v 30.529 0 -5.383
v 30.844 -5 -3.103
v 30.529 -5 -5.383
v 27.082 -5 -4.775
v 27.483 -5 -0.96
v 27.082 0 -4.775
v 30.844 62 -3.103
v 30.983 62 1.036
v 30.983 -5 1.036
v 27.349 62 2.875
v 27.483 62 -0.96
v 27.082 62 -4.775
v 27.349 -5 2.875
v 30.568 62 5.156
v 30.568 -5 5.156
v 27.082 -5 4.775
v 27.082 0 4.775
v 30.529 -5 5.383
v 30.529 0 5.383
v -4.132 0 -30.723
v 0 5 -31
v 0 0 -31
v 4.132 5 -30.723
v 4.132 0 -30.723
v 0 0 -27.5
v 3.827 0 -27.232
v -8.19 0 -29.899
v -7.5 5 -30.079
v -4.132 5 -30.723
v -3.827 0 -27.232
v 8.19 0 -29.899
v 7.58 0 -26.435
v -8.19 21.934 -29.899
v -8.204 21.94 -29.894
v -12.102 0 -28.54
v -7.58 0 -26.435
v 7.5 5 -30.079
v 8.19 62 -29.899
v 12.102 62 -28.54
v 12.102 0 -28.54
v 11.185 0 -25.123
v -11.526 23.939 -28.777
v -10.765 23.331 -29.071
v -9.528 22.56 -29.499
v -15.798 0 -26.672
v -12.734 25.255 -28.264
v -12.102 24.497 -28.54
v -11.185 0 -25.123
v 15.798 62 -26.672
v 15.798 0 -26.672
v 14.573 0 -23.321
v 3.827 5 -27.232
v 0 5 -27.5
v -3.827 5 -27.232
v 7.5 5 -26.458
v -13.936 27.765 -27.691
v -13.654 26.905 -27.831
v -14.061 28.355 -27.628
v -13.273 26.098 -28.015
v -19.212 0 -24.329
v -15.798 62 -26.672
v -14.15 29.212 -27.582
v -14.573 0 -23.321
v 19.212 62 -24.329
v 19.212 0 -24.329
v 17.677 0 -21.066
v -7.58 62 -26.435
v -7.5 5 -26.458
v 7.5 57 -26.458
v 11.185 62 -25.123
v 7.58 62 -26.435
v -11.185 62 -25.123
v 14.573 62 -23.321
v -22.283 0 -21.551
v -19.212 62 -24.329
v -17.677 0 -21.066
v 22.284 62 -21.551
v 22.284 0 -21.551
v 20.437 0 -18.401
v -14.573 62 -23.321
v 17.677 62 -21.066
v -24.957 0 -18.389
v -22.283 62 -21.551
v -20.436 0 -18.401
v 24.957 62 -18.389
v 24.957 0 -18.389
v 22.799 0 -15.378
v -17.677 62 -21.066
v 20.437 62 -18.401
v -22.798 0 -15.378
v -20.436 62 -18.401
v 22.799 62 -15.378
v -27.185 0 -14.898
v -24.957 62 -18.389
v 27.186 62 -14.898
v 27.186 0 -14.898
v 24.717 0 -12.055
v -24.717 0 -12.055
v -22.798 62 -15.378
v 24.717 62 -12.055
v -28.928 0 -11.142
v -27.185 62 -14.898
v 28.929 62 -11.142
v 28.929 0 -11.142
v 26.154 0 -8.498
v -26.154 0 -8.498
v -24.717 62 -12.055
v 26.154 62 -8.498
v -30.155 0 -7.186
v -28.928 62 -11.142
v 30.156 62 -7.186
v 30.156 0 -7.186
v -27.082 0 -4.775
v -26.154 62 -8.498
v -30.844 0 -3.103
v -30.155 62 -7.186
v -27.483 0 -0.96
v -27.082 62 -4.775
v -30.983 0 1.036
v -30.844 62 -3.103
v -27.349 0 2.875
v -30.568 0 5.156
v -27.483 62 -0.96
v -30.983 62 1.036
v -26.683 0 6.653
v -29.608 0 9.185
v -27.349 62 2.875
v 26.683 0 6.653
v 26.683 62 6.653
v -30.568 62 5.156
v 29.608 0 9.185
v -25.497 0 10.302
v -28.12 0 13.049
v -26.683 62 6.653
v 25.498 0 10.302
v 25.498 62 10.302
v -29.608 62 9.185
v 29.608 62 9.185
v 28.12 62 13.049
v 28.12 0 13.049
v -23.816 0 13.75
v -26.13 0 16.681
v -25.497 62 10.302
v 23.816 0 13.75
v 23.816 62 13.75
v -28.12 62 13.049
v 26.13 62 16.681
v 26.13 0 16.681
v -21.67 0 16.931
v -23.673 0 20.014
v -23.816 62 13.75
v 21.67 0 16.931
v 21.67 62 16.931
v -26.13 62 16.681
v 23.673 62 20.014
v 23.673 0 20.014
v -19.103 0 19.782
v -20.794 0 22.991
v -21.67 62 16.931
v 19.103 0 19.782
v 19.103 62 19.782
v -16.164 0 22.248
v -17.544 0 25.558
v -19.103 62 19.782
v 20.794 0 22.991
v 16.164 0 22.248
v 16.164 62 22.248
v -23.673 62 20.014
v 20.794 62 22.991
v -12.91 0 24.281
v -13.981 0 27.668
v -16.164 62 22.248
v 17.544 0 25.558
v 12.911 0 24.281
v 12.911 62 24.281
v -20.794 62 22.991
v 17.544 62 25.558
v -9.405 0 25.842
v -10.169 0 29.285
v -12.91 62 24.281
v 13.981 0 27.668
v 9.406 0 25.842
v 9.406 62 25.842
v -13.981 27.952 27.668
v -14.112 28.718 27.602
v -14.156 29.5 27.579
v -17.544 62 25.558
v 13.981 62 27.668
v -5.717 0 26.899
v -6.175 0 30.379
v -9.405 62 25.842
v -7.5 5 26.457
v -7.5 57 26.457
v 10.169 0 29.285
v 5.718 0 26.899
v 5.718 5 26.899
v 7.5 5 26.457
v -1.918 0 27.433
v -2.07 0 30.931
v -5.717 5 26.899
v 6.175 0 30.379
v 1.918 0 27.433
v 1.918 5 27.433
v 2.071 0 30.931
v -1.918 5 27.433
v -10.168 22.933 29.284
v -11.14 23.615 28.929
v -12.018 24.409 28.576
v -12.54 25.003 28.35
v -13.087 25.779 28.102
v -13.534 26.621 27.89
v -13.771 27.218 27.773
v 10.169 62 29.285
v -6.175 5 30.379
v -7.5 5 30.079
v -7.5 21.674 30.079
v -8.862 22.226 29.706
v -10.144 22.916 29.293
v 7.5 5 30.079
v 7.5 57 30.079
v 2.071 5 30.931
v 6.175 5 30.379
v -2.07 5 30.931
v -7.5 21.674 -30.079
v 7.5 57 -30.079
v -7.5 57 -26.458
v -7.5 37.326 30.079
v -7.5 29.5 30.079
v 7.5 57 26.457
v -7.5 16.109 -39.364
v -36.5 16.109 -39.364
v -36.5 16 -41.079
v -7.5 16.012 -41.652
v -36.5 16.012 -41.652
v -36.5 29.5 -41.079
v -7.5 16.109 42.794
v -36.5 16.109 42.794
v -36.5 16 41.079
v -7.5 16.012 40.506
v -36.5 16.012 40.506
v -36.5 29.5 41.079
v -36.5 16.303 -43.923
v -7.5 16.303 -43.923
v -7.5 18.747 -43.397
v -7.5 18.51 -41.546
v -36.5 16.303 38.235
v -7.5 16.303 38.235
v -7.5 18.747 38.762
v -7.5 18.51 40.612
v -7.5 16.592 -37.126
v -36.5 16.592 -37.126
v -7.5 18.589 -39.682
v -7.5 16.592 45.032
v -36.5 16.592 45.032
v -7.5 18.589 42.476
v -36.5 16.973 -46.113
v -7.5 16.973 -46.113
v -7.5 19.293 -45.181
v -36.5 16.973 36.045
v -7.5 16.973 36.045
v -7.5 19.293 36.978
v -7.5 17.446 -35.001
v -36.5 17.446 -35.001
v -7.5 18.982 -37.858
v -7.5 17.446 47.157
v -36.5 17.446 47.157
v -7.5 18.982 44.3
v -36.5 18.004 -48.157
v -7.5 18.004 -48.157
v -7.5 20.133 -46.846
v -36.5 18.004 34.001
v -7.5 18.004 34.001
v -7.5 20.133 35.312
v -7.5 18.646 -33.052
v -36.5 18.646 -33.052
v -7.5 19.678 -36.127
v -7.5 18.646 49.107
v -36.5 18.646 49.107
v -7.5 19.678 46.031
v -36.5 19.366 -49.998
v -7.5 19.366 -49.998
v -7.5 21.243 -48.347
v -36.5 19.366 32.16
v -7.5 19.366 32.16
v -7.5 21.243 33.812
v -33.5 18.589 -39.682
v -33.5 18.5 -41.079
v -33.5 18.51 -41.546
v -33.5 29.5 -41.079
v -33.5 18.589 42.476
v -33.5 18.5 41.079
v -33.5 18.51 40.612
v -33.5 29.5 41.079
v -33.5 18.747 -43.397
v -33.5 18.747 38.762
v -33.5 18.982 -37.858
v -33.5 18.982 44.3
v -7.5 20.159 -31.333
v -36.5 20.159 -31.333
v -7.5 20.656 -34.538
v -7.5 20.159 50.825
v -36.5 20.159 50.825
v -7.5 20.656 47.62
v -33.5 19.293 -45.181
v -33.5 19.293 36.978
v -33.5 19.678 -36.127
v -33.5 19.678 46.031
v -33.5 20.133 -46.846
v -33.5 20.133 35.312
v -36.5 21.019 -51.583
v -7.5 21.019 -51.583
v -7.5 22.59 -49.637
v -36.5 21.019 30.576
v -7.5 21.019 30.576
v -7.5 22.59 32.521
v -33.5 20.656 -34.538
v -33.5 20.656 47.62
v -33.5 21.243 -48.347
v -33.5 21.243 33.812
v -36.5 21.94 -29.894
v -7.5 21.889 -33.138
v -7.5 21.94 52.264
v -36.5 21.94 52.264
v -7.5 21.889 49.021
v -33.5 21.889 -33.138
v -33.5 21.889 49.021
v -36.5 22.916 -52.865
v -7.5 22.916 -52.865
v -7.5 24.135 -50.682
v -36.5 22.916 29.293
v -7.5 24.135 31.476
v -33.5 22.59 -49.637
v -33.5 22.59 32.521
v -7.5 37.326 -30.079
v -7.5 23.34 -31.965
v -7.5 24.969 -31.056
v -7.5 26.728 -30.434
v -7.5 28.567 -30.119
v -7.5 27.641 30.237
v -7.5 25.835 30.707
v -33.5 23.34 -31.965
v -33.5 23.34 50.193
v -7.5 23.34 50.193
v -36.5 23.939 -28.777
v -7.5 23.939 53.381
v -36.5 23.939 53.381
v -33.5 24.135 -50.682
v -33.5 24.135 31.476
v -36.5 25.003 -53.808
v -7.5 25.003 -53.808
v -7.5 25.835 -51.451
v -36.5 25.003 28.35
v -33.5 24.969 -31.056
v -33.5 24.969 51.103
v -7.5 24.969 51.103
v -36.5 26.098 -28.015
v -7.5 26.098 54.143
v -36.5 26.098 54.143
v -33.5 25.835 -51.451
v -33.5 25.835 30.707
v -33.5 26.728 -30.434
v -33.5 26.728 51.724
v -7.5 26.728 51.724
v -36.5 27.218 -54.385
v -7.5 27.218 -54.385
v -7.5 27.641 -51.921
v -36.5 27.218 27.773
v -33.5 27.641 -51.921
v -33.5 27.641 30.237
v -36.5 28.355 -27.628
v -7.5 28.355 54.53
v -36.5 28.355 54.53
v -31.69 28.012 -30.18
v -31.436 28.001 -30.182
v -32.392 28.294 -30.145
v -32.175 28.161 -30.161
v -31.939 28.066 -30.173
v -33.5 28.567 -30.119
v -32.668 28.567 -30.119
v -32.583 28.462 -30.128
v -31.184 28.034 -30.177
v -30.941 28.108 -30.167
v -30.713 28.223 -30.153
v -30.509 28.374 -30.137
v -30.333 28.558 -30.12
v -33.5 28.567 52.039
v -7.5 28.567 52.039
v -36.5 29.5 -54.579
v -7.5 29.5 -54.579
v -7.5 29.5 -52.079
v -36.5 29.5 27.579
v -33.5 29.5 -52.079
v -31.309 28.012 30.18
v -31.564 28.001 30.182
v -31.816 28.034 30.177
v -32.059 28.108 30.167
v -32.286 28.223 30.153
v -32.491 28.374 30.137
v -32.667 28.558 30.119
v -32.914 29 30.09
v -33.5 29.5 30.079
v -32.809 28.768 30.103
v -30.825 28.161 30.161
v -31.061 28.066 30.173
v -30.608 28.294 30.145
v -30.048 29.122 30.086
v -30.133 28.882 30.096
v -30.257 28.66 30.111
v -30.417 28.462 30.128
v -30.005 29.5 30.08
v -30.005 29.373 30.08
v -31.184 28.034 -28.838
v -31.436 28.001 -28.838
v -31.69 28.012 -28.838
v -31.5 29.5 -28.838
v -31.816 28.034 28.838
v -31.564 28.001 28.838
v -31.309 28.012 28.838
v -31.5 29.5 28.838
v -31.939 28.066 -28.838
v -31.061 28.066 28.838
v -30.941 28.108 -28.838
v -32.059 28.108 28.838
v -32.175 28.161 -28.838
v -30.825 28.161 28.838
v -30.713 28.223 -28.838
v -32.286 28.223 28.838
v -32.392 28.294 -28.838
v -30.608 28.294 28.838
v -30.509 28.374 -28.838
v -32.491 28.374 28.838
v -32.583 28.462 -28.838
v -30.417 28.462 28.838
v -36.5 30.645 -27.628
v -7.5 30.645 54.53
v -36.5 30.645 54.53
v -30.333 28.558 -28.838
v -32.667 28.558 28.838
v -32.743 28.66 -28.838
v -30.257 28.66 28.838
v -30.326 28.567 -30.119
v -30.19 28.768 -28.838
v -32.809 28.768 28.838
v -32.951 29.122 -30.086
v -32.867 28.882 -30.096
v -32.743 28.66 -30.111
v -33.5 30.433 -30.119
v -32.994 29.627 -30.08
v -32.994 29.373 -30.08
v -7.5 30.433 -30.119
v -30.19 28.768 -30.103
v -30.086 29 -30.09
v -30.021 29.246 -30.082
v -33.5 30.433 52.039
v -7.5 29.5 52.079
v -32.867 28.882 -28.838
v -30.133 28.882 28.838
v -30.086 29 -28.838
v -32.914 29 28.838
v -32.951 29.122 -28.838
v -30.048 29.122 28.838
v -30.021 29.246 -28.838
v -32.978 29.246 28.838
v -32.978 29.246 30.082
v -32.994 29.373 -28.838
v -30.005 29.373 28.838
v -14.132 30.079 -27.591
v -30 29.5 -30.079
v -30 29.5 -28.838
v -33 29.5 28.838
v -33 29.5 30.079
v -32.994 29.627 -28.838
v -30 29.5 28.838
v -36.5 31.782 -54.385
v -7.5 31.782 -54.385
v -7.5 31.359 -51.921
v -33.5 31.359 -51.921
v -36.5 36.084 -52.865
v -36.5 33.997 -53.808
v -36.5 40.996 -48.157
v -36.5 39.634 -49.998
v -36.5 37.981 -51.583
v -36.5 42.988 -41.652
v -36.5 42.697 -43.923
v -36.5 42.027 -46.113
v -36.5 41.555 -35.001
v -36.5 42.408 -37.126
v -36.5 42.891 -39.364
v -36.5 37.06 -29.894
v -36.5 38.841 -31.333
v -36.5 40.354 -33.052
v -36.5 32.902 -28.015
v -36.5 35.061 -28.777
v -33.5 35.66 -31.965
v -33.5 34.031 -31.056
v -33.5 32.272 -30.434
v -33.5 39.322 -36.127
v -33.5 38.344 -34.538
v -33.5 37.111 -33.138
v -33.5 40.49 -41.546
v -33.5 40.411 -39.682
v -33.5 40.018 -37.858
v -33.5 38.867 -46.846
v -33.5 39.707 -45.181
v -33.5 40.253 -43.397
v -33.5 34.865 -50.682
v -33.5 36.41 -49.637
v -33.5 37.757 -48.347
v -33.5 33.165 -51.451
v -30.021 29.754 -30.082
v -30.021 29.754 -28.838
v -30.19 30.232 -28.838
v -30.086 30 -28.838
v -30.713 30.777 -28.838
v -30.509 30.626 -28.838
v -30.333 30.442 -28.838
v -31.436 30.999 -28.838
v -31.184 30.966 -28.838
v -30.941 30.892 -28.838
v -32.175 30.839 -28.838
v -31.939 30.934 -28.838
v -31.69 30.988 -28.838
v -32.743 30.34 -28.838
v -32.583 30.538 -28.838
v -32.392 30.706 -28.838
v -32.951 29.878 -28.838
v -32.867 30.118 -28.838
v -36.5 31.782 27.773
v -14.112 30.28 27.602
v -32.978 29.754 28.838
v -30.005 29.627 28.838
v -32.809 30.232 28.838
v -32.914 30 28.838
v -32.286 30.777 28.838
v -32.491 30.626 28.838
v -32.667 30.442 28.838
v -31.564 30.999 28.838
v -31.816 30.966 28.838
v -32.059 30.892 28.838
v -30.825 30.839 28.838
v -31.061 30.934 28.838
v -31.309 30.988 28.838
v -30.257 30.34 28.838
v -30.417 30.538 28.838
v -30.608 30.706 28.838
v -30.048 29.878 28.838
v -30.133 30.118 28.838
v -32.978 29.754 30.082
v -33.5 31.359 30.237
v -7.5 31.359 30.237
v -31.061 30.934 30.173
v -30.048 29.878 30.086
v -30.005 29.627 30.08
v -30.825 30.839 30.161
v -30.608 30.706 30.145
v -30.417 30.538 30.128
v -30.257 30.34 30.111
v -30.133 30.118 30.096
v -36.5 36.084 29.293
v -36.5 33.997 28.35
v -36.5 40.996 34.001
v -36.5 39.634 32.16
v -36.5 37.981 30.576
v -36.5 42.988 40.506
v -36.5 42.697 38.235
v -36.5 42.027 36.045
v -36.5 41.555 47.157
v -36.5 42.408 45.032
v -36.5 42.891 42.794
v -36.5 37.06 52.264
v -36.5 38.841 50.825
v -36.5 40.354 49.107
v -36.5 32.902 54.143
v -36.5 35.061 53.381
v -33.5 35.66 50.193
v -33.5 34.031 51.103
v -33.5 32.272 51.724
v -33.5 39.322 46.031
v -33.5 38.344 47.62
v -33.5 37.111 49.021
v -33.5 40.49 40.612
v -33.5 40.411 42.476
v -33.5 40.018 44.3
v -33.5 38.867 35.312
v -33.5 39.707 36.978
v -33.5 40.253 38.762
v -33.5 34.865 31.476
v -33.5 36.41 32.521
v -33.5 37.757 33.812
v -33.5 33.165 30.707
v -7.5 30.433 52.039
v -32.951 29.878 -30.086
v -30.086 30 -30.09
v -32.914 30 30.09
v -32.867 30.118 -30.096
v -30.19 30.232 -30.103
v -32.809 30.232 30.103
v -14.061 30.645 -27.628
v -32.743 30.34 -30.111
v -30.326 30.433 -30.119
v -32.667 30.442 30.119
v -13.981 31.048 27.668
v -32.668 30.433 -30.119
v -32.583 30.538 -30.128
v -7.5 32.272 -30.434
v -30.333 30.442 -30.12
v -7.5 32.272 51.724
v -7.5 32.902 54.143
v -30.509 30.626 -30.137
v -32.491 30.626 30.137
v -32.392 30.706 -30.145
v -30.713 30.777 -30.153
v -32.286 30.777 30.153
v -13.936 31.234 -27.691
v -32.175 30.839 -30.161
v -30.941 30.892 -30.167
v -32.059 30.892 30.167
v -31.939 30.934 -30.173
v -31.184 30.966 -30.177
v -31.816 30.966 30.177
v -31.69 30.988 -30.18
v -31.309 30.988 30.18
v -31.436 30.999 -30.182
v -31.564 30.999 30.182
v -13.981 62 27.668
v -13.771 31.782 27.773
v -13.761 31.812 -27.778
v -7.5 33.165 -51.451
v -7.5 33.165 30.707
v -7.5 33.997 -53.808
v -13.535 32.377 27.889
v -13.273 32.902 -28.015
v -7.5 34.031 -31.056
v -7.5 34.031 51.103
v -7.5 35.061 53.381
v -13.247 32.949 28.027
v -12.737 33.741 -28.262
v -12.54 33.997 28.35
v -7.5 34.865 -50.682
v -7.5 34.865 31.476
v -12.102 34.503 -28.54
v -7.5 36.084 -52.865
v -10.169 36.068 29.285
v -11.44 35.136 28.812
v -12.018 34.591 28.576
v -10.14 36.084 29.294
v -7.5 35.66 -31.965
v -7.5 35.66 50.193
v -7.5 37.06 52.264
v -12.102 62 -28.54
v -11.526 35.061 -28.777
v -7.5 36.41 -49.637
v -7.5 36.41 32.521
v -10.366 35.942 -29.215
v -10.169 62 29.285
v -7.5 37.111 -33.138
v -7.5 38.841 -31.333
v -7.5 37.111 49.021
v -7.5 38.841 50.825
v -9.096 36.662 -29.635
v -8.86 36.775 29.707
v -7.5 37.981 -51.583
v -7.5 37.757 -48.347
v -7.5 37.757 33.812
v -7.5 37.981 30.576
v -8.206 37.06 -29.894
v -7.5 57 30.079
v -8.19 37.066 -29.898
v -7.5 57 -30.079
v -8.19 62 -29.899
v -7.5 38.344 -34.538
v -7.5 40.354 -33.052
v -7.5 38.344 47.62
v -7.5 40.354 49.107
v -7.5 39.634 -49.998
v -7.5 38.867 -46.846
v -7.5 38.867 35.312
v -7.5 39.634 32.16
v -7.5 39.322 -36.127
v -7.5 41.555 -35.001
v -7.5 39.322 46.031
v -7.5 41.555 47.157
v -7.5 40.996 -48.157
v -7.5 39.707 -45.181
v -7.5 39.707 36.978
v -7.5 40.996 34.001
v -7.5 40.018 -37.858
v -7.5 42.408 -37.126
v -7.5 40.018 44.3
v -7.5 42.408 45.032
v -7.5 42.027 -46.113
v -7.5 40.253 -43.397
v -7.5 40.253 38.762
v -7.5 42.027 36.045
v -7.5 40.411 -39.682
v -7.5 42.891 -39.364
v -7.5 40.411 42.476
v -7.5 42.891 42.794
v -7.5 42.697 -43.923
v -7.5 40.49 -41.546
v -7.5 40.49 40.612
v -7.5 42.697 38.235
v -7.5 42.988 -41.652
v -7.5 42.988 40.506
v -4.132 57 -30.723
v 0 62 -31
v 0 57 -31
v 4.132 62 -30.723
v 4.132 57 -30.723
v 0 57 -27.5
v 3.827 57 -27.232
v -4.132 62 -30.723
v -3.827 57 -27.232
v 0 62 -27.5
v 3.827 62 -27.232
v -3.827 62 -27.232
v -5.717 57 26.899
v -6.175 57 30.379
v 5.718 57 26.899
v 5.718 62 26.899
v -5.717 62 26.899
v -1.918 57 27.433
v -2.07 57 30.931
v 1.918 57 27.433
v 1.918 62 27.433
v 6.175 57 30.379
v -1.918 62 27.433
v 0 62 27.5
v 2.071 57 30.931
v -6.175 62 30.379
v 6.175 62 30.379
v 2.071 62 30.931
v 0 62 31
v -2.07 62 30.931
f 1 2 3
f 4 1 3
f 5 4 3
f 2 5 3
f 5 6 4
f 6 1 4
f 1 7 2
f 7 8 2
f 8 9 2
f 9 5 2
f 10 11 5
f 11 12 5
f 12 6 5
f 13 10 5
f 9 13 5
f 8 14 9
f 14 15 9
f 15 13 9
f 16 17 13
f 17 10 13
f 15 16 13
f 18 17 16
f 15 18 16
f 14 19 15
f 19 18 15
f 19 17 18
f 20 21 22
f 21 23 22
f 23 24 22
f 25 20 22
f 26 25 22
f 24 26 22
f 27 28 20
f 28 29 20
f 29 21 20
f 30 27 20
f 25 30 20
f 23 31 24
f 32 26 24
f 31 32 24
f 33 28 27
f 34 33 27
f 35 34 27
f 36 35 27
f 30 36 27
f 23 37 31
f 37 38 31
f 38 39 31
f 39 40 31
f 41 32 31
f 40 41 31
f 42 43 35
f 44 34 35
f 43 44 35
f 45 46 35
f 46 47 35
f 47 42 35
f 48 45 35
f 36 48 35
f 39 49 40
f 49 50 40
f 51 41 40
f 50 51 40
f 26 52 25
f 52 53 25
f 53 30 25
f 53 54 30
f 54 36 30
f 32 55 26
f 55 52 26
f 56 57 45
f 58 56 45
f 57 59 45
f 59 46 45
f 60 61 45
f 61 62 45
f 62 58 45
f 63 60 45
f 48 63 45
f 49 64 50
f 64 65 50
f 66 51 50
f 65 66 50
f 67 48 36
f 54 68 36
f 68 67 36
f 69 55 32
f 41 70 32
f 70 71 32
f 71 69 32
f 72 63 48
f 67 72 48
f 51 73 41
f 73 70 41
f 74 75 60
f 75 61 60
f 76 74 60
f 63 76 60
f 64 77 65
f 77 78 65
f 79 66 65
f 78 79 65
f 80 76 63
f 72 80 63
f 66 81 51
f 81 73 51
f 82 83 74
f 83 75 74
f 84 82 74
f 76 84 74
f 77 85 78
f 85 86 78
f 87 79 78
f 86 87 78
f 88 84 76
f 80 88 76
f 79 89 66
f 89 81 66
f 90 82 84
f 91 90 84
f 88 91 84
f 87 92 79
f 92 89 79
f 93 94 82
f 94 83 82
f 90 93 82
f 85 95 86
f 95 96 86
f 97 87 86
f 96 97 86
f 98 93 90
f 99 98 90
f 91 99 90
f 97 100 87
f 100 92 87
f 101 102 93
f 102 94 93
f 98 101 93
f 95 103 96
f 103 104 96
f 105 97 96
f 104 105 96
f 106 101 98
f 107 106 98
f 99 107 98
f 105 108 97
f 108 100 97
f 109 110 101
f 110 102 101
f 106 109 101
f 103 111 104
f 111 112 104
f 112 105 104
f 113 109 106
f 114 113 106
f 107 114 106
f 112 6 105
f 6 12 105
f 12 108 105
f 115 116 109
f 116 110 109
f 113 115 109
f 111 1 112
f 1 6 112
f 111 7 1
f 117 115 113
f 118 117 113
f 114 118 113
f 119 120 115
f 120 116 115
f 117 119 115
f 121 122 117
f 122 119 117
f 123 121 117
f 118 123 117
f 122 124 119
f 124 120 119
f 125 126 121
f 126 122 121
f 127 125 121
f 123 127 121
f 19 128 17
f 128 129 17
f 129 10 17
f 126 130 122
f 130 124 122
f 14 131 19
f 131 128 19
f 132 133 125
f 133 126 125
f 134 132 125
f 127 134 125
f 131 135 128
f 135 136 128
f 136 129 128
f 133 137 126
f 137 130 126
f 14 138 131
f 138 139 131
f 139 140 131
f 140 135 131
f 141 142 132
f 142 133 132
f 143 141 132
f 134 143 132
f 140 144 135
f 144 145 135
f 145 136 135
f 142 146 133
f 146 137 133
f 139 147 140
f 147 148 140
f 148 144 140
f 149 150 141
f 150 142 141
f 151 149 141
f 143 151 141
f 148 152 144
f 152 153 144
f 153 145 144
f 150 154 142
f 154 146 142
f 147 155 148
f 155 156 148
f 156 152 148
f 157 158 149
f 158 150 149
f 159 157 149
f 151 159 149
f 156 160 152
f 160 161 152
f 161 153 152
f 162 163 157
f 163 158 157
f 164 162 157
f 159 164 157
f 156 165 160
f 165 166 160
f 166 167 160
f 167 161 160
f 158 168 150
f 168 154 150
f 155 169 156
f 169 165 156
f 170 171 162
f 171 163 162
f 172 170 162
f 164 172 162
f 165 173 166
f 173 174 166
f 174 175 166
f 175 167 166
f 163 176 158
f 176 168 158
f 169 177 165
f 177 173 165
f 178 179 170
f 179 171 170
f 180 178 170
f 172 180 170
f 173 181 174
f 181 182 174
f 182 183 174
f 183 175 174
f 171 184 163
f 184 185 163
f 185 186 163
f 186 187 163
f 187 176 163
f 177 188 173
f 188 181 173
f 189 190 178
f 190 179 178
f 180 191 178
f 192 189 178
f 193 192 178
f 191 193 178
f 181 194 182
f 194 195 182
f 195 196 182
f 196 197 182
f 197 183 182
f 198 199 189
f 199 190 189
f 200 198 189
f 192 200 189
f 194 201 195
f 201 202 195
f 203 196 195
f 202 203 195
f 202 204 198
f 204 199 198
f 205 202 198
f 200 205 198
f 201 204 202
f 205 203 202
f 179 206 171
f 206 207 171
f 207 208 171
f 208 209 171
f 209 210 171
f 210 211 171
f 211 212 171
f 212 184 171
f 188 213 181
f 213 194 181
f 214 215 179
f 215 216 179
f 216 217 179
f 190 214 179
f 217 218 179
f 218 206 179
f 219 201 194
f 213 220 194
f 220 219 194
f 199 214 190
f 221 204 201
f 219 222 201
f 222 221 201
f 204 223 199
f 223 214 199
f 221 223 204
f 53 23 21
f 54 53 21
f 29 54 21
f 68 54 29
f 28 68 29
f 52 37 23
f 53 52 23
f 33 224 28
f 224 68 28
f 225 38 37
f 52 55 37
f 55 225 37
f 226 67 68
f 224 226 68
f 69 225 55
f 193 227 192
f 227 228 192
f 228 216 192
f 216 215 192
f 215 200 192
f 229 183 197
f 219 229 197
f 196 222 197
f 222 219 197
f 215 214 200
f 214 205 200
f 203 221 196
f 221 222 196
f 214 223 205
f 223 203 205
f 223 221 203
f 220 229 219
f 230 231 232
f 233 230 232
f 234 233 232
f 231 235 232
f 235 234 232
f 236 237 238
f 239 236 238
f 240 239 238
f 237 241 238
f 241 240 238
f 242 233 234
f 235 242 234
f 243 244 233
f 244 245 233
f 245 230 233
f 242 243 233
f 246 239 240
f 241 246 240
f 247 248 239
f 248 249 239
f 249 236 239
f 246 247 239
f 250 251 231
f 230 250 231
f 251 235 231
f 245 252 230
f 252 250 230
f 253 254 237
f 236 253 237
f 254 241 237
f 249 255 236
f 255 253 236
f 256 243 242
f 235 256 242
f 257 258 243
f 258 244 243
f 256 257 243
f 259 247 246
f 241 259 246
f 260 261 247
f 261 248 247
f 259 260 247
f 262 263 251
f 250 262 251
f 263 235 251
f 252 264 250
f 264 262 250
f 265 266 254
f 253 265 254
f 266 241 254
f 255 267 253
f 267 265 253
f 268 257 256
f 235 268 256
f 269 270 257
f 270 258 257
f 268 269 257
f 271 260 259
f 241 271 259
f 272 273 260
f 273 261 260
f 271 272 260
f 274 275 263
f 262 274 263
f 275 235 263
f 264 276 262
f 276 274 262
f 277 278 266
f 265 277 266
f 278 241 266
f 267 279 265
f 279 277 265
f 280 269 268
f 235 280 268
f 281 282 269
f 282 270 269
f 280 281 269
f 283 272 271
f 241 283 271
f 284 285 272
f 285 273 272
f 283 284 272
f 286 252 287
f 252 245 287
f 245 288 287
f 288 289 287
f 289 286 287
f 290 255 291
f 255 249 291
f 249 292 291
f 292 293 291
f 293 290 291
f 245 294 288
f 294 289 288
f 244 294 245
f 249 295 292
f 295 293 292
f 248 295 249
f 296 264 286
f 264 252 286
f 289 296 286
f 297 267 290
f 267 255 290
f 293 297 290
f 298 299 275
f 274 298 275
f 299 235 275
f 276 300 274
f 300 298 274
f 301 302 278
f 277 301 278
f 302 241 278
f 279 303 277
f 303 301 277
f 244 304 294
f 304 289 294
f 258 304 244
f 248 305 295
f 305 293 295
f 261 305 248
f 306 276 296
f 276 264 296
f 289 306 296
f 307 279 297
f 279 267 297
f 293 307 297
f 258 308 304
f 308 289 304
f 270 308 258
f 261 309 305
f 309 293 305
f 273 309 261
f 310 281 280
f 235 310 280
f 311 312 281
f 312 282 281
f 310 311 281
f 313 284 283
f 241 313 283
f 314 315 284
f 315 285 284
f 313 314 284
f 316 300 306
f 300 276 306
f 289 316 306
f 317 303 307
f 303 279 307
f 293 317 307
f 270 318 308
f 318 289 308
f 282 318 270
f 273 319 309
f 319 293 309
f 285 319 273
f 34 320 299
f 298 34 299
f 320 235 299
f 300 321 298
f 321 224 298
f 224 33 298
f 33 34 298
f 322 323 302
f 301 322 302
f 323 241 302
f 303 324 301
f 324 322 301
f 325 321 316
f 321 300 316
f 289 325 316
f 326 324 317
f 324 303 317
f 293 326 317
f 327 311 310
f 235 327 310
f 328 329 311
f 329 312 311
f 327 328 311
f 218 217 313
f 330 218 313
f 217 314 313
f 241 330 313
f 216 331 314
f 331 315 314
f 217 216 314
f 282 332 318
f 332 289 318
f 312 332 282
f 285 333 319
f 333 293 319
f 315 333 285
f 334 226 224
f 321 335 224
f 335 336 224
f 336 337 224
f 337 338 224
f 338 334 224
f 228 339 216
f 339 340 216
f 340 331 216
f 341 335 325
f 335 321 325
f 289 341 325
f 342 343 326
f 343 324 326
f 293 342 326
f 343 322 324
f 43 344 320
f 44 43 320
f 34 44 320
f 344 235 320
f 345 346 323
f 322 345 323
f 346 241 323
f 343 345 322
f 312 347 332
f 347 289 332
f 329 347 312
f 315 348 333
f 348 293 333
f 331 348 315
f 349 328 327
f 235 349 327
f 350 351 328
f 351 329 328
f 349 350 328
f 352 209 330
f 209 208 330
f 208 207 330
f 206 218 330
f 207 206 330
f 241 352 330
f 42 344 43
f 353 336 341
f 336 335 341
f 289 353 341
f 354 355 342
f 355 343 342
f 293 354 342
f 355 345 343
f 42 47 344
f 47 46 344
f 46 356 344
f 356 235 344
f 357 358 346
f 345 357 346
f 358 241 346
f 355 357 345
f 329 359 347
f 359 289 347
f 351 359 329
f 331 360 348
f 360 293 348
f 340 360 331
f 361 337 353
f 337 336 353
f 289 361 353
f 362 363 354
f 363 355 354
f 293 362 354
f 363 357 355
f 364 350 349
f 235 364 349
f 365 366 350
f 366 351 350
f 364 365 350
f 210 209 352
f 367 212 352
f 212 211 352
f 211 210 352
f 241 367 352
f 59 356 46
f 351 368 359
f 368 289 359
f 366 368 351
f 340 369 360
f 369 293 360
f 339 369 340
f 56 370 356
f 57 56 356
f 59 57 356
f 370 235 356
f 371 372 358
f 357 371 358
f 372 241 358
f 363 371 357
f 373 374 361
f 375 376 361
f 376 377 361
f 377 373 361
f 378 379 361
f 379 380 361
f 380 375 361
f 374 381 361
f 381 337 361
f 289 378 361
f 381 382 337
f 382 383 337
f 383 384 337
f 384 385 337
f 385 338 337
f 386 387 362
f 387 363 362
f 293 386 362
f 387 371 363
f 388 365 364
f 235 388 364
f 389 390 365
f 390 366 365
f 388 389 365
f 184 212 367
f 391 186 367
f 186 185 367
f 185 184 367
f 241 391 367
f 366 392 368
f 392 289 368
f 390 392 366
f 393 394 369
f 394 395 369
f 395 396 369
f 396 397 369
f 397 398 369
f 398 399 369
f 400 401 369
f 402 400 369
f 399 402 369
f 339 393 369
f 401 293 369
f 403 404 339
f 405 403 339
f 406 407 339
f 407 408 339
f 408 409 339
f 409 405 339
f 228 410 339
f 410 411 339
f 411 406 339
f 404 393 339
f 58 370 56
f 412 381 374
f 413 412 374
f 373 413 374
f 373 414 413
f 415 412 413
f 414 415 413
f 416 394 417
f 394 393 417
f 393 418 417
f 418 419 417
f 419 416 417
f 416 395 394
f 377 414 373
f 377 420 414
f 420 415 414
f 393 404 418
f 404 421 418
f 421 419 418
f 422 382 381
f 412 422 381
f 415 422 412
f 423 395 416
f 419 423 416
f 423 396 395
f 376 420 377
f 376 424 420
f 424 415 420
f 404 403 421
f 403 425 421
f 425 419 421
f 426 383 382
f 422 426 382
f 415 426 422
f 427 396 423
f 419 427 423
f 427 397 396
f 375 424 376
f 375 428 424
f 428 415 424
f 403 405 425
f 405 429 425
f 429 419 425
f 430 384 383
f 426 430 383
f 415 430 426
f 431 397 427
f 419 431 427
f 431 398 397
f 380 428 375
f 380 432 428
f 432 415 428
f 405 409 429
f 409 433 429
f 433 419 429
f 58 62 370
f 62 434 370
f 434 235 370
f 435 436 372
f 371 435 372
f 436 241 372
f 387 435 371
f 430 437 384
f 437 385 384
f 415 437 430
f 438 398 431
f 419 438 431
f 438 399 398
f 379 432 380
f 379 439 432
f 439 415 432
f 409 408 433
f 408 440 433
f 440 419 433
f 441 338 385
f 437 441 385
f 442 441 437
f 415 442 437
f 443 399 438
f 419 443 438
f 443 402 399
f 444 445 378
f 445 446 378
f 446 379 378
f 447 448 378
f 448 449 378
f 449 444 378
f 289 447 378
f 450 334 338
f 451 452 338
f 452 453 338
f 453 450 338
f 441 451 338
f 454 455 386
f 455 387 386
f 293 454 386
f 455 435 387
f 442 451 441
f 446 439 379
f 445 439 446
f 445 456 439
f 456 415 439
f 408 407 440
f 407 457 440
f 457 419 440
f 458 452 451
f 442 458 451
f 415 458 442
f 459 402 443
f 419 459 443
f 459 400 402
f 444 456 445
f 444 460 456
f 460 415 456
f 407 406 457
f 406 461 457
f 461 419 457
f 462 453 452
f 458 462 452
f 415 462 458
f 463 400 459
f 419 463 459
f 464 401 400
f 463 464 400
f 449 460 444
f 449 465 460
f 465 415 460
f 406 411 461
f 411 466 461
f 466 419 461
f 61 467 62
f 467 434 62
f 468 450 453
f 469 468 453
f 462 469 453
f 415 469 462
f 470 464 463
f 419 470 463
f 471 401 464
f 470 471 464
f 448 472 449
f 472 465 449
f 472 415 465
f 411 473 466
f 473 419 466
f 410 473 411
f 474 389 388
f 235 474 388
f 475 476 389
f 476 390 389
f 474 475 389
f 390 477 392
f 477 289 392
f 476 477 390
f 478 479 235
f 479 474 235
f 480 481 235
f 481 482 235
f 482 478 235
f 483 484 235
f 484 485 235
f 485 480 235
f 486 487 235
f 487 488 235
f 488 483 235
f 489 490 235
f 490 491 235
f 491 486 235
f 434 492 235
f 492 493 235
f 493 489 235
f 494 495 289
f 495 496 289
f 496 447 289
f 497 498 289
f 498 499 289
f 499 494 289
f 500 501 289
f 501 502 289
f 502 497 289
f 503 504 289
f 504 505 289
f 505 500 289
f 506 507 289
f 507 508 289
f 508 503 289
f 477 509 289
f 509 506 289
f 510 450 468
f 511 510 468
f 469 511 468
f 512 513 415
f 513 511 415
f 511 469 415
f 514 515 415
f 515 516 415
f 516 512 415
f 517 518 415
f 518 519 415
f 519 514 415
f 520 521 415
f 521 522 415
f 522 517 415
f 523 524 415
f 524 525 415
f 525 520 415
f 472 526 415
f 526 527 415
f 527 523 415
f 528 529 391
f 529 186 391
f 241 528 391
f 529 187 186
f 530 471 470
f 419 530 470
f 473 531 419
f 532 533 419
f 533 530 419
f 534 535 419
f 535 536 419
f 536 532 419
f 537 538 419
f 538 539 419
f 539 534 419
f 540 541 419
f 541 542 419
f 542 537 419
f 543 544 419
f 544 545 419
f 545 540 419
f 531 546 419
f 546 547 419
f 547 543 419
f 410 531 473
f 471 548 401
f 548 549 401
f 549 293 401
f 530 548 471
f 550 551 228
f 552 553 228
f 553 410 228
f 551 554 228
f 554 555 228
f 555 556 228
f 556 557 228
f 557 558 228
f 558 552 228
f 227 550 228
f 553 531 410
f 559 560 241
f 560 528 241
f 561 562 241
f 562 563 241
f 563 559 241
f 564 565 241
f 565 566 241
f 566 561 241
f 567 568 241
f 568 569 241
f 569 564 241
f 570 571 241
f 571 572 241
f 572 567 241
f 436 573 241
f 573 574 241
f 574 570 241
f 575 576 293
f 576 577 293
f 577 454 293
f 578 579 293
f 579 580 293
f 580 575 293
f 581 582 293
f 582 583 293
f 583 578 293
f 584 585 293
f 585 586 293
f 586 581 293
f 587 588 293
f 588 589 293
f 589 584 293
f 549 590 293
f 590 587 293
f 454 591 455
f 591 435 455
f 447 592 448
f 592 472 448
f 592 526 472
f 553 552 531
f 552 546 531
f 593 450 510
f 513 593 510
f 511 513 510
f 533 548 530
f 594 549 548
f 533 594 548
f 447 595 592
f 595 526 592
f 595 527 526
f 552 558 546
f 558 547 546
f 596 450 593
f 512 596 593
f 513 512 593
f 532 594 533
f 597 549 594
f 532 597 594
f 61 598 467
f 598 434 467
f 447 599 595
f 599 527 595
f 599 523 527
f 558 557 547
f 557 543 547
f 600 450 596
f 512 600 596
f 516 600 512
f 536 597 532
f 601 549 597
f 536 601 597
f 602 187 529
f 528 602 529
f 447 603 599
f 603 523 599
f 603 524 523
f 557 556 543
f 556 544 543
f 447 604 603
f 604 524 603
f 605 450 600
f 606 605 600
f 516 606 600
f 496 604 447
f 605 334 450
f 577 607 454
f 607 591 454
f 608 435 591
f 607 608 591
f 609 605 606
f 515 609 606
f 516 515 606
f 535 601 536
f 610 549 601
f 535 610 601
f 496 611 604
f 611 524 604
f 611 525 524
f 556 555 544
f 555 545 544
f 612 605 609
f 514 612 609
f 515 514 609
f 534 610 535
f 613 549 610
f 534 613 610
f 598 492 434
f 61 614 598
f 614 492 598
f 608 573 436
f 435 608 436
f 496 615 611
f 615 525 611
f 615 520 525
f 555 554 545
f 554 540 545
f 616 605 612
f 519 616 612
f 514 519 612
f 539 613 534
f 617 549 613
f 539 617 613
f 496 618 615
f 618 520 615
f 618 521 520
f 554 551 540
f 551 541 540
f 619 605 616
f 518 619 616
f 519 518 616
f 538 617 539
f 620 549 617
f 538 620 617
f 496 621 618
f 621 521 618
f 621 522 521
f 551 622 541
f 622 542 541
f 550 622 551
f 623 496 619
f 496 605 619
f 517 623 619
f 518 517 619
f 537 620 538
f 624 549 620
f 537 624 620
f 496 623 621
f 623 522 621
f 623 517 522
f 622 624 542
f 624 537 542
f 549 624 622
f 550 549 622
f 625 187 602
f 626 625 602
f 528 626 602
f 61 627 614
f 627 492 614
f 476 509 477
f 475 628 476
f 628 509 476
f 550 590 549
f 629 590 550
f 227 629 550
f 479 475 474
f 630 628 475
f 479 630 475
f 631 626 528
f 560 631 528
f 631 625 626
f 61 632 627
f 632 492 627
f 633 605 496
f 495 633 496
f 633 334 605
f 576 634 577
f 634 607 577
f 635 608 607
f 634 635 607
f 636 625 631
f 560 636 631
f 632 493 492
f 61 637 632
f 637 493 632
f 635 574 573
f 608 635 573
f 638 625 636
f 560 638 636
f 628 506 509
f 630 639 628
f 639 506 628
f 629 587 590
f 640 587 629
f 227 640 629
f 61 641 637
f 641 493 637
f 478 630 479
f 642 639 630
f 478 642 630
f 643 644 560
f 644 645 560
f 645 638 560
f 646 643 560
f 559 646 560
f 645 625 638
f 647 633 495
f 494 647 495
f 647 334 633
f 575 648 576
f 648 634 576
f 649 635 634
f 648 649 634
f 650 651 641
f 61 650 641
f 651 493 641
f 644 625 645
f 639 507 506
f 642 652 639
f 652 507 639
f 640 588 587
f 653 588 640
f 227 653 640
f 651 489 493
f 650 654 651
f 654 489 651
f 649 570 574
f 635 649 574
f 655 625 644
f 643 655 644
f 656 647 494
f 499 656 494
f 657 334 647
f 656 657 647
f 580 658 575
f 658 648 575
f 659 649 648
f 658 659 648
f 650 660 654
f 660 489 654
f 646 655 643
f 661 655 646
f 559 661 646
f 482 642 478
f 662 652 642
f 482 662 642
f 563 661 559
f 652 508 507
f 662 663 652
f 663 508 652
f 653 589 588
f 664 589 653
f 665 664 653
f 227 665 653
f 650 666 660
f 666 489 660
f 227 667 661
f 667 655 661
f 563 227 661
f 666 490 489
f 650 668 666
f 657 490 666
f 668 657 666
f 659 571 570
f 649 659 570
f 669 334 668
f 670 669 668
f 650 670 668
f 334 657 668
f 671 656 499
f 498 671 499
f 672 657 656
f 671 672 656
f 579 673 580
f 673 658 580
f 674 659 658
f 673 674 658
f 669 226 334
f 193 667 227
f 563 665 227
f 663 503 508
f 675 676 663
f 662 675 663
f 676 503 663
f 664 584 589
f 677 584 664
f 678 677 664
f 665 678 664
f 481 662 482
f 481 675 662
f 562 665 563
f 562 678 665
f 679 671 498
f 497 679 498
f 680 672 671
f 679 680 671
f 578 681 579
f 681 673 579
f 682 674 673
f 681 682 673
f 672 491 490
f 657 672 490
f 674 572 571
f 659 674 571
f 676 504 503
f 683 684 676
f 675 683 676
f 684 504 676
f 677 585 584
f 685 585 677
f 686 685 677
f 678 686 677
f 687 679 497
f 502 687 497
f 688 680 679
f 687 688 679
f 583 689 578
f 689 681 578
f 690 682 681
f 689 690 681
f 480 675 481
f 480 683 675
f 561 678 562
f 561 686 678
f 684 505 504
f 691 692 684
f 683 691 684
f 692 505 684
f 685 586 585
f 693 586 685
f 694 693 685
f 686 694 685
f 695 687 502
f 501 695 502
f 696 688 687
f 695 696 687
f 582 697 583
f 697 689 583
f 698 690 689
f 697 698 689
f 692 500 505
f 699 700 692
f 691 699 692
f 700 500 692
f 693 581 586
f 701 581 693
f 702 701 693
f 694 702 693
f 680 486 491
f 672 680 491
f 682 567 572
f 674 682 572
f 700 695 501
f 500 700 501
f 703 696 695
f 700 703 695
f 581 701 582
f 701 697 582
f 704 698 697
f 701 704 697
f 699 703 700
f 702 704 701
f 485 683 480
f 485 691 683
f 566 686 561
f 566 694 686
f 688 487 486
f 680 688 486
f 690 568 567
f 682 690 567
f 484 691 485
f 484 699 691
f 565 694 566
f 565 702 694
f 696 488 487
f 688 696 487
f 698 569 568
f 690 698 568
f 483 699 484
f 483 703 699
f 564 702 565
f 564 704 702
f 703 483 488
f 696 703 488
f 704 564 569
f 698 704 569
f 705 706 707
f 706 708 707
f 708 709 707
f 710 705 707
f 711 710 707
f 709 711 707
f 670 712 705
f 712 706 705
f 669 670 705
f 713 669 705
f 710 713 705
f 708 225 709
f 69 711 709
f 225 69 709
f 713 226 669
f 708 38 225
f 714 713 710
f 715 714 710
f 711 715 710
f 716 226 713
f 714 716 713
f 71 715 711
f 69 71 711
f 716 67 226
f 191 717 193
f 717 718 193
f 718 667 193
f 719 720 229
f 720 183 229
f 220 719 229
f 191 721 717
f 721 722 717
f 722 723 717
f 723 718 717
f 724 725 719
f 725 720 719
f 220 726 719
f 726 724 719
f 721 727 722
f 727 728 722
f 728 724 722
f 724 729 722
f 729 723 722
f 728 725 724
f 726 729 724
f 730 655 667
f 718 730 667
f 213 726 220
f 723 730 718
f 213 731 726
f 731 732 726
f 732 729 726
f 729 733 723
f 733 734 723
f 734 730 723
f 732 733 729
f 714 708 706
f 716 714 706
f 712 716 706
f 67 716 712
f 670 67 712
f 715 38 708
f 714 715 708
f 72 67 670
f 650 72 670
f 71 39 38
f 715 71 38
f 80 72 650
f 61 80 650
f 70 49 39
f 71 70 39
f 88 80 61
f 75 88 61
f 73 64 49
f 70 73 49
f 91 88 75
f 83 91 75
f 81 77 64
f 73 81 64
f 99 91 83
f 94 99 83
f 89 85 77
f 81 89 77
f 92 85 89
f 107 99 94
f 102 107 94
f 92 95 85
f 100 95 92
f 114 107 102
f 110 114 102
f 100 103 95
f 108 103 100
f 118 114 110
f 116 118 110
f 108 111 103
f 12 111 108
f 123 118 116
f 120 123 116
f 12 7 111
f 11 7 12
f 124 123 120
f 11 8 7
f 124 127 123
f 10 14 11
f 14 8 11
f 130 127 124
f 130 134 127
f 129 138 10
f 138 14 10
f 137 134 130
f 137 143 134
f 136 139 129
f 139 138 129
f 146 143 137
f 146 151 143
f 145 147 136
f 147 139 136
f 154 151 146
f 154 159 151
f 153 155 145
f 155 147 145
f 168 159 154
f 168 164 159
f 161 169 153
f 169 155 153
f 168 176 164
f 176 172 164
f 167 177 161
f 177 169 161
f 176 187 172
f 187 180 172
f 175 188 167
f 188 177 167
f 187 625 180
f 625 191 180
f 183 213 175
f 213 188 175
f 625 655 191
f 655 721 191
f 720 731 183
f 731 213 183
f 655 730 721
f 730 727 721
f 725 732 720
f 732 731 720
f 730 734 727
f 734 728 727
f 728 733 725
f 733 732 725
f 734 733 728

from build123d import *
from build123d.topology import SkipClean

# Parameters (mm, degrees)
SKETCH1_R               = 31
SKETCH1_R_2             = 27.5
BOSS_EXTRUDE1_DEPTH     = 62
BOSS_EXTRUDE3_START     = 5
BOSS_EXTRUDE3_DEPTH     = 5
CUT_EXTRUDE1_DEPTH      = 76.934182026
CUT_EXTRUDE1_DEPTH_BACK = 76.934182026
SKETCH8_W               = 15
SKETCH8_H               = 52
SKETCH9_R               = 13.5
SKETCH9_R_2             = 11
BOSS_EXTRUDE4_DEPTH     = 26
SKETCH10_R              = 13.5
BOSS_EXTRUDE5_DEPTH     = 3
SKETCH12_R              = 1.5
CUT_EXTRUDE2_DEPTH      = 3


with BuildPart() as part:
    # Sketch1 → Boss-Extrude1 (new body)
    with BuildSketch(Plane(origin=(0, 0, 0), x_dir=(1, 0, 0), z_dir=(0, 1, 0))):
        with Locations(Location((0, 0, 0), (0, 0, 270))):
            Circle(SKETCH1_R)
        with Locations(Location((0, 0, 0), (0, 0, 270))):
            Circle(SKETCH1_R_2, mode=Mode.SUBTRACT)
    extrude(amount=BOSS_EXTRUDE1_DEPTH)

    # Sketch6 → Boss-Extrude3 (add)
    with SkipClean():  # the faces are left unmerged after this step: merging them gives an invalid solid
        with BuildSketch(Plane.XZ.offset(BOSS_EXTRUDE3_START)):
            with BuildLine():
                Line((31, 0), (27.5, 0))
                ThreePointArc((27.5, 0), (27.395354198, -2.396782926), (27.082213208, -4.775324886))
                Line((27.082213208, -4.775324886), (30.529040343, -5.383093508))
                ThreePointArc((30.529040343, -5.383093508), (30.882035641, -2.701828025), (31, 0))
            make_face()
            with BuildLine():
                ThreePointArc((27.082213208, 4.775324886), (27.395354198, 2.396782926), (27.5, 0))
                Line((27.5, 0), (31, 0))
                ThreePointArc((31, 0), (30.882035641, 2.701828025), (30.529040343, 5.383093508))
                Line((30.529040343, 5.383093508), (27.082213208, 4.775324886))
            make_face()
        extrude(amount=-BOSS_EXTRUDE3_DEPTH)

    # Sketch8 → Cut-Extrude1 (cut, two sides: drawn at the far end of the back side and taken through both)
    with BuildSketch(Plane.XY.offset(-CUT_EXTRUDE1_DEPTH_BACK)):
        with Locations((0, 31)):
            Rectangle(SKETCH8_W, SKETCH8_H)
    extrude(amount=CUT_EXTRUDE1_DEPTH + CUT_EXTRUDE1_DEPTH_BACK, mode=Mode.SUBTRACT)

    # Sketch9 → Boss-Extrude4 (add)
    with BuildSketch(Plane(origin=(-7.5, 0, 0), x_dir=(0, 0, -1), z_dir=(1, 0, 0))):
        with Locations(Location((41.079062485, 29.5, 0), (0, 0, 270))):
            Circle(SKETCH9_R)
        with Locations((41.079062485, 29.5)):
            Circle(SKETCH9_R_2, mode=Mode.SUBTRACT)
    boss_extrude4 = extrude(amount=-BOSS_EXTRUDE4_DEPTH)

    # Sketch10 → Boss-Extrude5 (add)
    with BuildSketch(Plane.ZY.offset(33.5)):
        with Locations(Location((-41.079062485, 29.5, 0), (0, 0, 270))):
            Circle(SKETCH10_R)
    boss_extrude5 = extrude(amount=BOSS_EXTRUDE5_DEPTH)

    # Sketch12 → Cut-Extrude2 (cut)
    with BuildSketch(Plane(origin=(-17.285590039, -28.448353543, -28.838033475), x_dir=(1, 0, 0), z_dir=(0, 0, 1))):
        with Locations((-14.214409961, 57.948353543)):
            Circle(SKETCH12_R)
    cut_extrude2 = extrude(amount=-CUT_EXTRUDE2_DEPTH, mode=Mode.SUBTRACT)

    # Mirror1: Boss-Extrude4, Boss-Extrude5, Cut-Extrude2 across plane
    add(boss_extrude4.mirror(Plane.XY))
    add(boss_extrude5.mirror(Plane.XY))
    add(cut_extrude2.mirror(Plane.XY), mode=Mode.SUBTRACT)


solid = part.part
